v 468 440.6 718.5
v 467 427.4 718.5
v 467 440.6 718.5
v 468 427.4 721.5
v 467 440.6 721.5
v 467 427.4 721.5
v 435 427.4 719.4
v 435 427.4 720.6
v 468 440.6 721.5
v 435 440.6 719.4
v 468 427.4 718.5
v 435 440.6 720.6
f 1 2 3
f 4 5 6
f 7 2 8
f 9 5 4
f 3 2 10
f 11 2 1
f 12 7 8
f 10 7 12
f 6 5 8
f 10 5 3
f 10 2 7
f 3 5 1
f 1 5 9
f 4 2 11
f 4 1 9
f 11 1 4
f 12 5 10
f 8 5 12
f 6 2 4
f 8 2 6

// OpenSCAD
// file: parts.scad
$fn=40;

// ---- 桌腿 ----

module leg(){
  difference(){
    union(){
      translate([390.000,390.000,0.000]) cube([60.000,60.000,750.000]);
      translate([400.000,400.000,750.000]) cube([40.000,40.000,20.000]);
    }
    // 牙板透榫槽（沿 +x，+y 侧牙板 A 端穿入）
    translate([389.000,426.800,699.800]) cube([62.000,14.400,40.400]);
    // 牙板闷榫槽（沿 +y，+x 侧牙板 B 端）
    translate([426.800,389.000,699.800]) cube([14.400,23.200,40.400]);
  }
}

// ---- 边框 ----

module rail(){
  difference(){
    union(){
      translate([0,0,750]) linear_extrude(height=50) polygon(points=[[-370,370],[370,370],[450.0,450.0],[-450.0,450.0]]);
      translate([420.607,399.393,779.0]) rotate([0,0,-45]) cube([34,40,10],center=true);
    }
    // 面板槽：全长开通至 45° 端面（角部两框的槽合起来成 L 形）
    translate([-450.000,370.000,785.800]) cube([900.000,14.000,6.400]);
    // 腿顶榫卯（两端各半，合起来 40x40x20）
    translate([399.800,399.800,750.000]) cube([40.400,40.400,20.400]);
    translate([-440.200,399.800,750.000]) cube([40.400,40.400,20.400]);
    // 格角暗榫卯
    translate([-398.545,421.455,779.0]) rotate([0,0,45]) cube([34.4,40.4,10.4],center=true);
    // 竹销孔：+x 端穿暗榫，-x 端穿本体
    translate([418,384,750]) cylinder(h=34,r=4.0,$fn=40);
    translate([-384,418,750]) cylinder(h=34,r=4.0,$fn=40);
  }
}

// ---- 牙板 ----

module apron(){
  difference(){
    union(){
      translate([-390.000,424.000,680.000]) cube([780.000,20.000,70.000]);
      // A 端：透榫（390..460）
      translate([390.000,427.000,700.000]) cube([70.000,14.000,40.000]);
      // B 端：闷榫（-412..-390）
      translate([-412.000,427.000,700.000]) cube([22.000,14.000,40.000]);
    }
    hull(){ translate([375.000,423.500,680.000]) cube([15.000,21.000,0.200]); translate([389.800,423.500,680.000]) cube([0.200,21.000,15.000]); }
    hull(){ translate([-390.000,423.500,680.000]) cube([15.000,21.000,0.200]); translate([-390.000,423.500,680.000]) cube([0.200,21.000,15.000]); }
    // 透榫楔槽（横槽，撑开榫头上下两片）
    translate([428.000,426.900,718.400]) cube([32.200,14.200,3.200]);
  }
}

// ---- 面板-边板 ----

module panel_outer(){
  difference(){
    union(){
      translate([-365.000,-365.000,778.000]) cube([730.000,244.000,22.000]);
      translate([0,0,786]) linear_extrude(height=6) polygon(points=[[-379,-121],[-379,-377],[-377,-379],[377,-379],[379,-377],[379,-121],[365,-121],[365,-365],[-365,-365],[-365,-121]]);
    }
    // 内侧龙凤榫槽（向板内 8 深：y -129..-121）
    translate([-365.000,-129.000,785.800]) cube([730.000,8.000,6.400]);
    // 穿带燕尾槽
    hull(){ translate([-259.200,-365.000,778.000]) cube([30.400,244.000,0.100]); translate([-266.200,-365.000,783.900]) cube([44.400,244.000,0.100]); }
    hull(){ translate([-15.200,-365.000,778.000]) cube([30.400,244.000,0.100]); translate([-22.200,-365.000,783.900]) cube([44.400,244.000,0.100]); }
    hull(){ translate([228.800,-365.000,778.000]) cube([30.400,244.000,0.100]); translate([221.800,-365.000,783.900]) cube([44.400,244.000,0.100]); }
  }
}

// ---- 面板-中板 ----

module panel_middle(){
  difference(){
    union(){
      translate([-365.000,-121.000,778.000]) cube([730.000,242.000,22.000]);
      translate([365.000,-121.000,786.000]) cube([14.000,242.000,6.000]);
      translate([-379.000,-121.000,786.000]) cube([14.000,242.000,6.000]);
    }
    // 两侧龙凤榫槽（各向板内 8 深）
    translate([-365.000,-121.000,785.800]) cube([730.000,8.000,6.400]);
    translate([-365.000,113.000,785.800]) cube([730.000,8.000,6.400]);
    hull(){ translate([-259.200,-121.000,778.000]) cube([30.400,242.000,0.100]); translate([-266.200,-121.000,783.900]) cube([44.400,242.000,0.100]); }
    hull(){ translate([-15.200,-121.000,778.000]) cube([30.400,242.000,0.100]); translate([-22.200,-121.000,783.900]) cube([44.400,242.000,0.100]); }
    hull(){ translate([228.800,-121.000,778.000]) cube([30.400,242.000,0.100]); translate([221.800,-121.000,783.900]) cube([44.400,242.000,0.100]); }
  }
}

// ---- 穿带 ----

module cleat(){
  union(){
    translate([-20.000,-363.000,752.000]) cube([40.000,726.000,26.000]);
    hull(){
      translate([-15.000,-363.000,777.900]) cube([30.000,726.000,0.050]);
      translate([-22.000,-363.000,783.800]) cube([44.000,726.000,0.100]);
    }
  }
}

// ---- 穿簧 ----
module spline(){ translate([-360.000,-7.800,786.100]) cube([720.000,15.600,5.800]); }
// ---- 木楔 ----
module wedge(){ hull(){ translate([435.000,427.400,719.400]) cube([1.000,13.200,1.200]); translate([467.000,427.400,718.500]) cube([1.000,13.200,3.000]); } }
// ---- 竹销 ----
module pin(){ translate([0,0,750]) cylinder(h=34,r=4.0,$fn=40); }
// main file
// 木楔（0° 基准件，位于整机坐标系中）
include <parts.scad>
wedge();
